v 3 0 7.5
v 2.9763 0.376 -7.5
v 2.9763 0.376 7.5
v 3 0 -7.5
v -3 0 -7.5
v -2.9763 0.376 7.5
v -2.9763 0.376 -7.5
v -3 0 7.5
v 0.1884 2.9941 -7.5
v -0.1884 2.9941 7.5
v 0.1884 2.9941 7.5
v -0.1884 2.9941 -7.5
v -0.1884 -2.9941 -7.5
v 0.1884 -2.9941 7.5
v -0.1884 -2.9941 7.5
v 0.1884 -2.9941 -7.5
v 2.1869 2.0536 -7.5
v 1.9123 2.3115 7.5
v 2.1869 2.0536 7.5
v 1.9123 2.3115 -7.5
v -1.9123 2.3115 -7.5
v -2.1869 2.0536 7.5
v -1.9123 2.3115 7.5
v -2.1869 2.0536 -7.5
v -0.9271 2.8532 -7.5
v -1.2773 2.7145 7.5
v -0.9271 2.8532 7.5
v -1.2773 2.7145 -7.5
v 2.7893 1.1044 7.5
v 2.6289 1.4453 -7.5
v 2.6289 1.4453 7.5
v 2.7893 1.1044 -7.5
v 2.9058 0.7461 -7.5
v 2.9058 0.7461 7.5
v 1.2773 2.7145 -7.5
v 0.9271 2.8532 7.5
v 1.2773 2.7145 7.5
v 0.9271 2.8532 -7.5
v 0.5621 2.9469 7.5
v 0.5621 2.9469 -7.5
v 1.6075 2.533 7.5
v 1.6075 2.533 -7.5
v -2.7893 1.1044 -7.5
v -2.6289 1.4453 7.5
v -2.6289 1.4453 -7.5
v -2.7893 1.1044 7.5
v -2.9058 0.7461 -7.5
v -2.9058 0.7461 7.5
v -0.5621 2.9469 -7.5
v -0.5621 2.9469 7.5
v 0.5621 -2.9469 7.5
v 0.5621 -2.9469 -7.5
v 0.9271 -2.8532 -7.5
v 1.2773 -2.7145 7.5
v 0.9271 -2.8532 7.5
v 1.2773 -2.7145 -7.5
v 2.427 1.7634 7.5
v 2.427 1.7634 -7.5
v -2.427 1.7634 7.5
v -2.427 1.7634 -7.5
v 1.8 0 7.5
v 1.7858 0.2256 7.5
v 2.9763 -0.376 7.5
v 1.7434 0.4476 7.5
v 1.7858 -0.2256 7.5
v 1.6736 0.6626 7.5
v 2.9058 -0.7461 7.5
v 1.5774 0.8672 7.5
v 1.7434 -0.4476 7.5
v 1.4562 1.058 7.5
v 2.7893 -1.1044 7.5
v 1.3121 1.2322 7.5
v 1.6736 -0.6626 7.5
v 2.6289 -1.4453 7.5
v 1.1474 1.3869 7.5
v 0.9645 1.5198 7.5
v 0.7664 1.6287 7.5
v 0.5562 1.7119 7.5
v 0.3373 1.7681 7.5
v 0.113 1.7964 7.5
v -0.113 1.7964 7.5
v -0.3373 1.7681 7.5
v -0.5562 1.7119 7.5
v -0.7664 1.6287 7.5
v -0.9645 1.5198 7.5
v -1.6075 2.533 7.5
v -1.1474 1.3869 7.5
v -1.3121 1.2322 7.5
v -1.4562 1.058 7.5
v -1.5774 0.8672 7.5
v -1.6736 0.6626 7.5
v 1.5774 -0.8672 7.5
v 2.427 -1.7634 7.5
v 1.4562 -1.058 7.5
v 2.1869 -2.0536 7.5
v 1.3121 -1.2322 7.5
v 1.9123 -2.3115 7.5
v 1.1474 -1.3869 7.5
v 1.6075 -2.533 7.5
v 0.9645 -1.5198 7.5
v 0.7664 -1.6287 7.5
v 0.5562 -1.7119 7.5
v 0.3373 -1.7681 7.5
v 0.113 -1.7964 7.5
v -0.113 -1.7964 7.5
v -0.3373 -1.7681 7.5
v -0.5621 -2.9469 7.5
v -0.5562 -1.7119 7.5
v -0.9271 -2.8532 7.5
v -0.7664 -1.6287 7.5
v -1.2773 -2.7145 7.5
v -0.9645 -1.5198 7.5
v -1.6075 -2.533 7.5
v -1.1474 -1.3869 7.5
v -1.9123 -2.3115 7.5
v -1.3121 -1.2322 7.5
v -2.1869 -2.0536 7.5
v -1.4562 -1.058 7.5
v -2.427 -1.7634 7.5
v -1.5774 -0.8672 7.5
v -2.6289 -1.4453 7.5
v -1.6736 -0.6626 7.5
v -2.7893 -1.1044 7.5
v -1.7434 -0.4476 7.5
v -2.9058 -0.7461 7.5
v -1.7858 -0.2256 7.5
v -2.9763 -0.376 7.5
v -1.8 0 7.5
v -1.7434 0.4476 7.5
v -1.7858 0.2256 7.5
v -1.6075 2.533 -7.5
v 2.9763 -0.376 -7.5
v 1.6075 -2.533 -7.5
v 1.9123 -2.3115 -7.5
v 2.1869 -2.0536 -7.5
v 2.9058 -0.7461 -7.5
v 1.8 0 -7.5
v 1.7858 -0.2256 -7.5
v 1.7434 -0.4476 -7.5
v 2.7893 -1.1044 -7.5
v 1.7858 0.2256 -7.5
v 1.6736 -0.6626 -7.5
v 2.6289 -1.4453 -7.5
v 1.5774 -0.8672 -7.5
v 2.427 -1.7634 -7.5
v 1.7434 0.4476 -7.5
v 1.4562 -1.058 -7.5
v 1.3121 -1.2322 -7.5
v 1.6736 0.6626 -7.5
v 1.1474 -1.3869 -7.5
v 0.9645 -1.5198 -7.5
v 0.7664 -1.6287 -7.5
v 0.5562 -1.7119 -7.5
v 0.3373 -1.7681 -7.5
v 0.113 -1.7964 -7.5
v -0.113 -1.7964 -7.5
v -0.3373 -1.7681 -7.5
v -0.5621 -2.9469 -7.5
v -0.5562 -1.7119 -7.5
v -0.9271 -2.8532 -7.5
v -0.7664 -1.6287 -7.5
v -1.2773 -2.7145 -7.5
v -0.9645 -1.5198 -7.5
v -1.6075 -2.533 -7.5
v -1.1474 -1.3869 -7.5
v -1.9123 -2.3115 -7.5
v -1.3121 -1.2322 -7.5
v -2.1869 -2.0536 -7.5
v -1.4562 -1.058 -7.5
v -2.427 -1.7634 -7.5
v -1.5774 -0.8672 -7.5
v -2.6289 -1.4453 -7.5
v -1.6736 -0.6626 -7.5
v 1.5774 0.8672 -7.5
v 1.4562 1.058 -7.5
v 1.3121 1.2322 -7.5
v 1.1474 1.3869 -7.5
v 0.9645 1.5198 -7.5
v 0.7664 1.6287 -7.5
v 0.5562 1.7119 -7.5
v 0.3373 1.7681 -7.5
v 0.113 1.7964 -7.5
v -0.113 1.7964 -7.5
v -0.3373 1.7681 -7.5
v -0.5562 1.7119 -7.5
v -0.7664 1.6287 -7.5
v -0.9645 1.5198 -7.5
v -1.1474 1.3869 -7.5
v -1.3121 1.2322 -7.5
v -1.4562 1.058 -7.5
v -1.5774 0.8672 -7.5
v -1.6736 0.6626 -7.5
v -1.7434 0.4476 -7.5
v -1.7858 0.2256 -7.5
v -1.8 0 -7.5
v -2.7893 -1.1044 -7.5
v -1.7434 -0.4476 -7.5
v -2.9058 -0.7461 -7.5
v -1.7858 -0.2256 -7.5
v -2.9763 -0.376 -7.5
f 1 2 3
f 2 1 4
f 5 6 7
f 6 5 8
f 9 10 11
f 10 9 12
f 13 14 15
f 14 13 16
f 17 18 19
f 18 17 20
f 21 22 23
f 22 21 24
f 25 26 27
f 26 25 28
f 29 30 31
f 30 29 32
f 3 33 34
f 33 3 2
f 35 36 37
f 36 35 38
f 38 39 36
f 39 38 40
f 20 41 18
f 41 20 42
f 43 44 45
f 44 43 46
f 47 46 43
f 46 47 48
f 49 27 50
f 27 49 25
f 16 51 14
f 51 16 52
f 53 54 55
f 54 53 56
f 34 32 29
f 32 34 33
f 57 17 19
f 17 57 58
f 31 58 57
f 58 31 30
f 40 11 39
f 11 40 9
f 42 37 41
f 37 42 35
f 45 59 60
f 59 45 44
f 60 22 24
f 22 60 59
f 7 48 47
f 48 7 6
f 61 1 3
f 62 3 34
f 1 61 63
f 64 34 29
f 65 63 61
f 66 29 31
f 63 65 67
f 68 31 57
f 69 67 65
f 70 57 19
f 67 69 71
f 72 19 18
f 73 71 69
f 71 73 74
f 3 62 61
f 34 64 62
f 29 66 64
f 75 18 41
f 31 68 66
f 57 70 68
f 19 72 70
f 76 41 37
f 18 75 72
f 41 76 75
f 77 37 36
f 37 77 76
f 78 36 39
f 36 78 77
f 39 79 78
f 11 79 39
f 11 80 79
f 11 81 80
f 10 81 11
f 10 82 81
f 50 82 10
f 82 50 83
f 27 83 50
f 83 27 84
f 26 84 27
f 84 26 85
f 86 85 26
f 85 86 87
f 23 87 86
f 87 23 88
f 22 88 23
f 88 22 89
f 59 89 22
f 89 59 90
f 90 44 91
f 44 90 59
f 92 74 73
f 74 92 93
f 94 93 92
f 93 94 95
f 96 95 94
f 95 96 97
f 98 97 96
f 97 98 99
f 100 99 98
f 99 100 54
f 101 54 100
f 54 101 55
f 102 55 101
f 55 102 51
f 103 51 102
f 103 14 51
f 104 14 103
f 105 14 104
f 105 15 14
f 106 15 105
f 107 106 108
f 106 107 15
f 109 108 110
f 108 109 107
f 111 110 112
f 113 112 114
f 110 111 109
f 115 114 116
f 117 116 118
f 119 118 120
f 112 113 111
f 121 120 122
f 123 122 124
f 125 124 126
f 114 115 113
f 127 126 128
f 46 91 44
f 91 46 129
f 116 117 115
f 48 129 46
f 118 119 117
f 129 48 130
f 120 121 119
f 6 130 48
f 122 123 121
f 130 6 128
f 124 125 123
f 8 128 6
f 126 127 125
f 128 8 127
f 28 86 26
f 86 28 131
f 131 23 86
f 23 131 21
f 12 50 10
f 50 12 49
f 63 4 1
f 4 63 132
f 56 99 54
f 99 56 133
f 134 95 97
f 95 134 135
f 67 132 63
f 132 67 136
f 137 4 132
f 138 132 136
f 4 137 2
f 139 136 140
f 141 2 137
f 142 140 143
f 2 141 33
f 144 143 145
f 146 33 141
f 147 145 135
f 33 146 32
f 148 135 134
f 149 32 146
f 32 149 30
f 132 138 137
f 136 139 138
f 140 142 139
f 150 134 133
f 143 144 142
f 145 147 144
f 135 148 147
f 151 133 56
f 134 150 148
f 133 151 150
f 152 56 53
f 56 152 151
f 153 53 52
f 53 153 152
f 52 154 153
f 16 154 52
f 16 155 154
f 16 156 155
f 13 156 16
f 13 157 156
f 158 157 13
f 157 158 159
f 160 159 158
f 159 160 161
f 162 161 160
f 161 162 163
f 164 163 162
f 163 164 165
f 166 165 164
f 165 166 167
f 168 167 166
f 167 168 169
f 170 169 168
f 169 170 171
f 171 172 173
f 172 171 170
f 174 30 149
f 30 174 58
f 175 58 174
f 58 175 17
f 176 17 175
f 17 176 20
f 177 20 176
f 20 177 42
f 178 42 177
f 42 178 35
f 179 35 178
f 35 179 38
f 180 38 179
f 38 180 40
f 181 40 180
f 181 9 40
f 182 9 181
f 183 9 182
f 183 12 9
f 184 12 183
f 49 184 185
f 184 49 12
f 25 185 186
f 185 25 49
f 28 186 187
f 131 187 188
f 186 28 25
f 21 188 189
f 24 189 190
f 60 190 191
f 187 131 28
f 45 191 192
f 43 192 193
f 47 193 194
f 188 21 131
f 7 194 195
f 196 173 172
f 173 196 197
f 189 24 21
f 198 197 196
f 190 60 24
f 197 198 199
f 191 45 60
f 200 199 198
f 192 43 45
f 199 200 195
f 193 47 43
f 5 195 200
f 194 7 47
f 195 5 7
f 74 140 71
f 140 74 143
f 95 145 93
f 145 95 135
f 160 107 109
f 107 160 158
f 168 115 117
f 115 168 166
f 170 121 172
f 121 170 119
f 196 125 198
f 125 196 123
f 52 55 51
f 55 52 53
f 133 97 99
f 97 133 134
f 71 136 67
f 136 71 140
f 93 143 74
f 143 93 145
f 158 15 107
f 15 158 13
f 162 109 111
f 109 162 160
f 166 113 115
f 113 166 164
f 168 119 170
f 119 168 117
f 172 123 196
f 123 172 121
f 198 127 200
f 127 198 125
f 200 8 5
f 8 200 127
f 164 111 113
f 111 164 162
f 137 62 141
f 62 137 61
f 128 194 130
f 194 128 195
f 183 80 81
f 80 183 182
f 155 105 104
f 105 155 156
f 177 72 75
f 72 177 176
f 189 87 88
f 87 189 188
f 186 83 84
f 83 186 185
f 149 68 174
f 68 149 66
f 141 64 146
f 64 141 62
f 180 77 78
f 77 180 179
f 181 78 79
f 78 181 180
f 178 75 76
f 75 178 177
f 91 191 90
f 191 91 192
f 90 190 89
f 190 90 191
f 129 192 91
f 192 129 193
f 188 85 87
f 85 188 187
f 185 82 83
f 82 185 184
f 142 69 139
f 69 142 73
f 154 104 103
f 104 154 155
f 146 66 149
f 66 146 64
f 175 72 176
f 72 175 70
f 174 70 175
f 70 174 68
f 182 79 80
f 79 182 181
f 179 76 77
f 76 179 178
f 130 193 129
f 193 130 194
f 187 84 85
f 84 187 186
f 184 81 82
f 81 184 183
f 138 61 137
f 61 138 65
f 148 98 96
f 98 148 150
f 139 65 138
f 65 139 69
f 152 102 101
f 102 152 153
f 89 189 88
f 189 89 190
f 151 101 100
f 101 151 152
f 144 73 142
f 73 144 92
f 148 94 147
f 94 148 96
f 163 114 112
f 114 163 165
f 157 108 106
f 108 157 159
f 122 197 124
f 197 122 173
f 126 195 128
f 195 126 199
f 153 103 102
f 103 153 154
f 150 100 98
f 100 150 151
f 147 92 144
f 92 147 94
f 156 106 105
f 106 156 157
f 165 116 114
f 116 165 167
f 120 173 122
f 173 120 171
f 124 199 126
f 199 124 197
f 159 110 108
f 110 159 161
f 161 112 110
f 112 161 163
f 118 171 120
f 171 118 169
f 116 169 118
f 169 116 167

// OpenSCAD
$fn = 50;


difference() {
	union() {
		translate(v = [0, 0, -7.5000000000]) {
			cylinder(h = 15, r = 3.0000000000);
		}
	}
	union() {
		translate(v = [0, 0, -100.0000000000]) {
			cylinder(h = 200, r = 1.8000000000);
		}
	}
}
